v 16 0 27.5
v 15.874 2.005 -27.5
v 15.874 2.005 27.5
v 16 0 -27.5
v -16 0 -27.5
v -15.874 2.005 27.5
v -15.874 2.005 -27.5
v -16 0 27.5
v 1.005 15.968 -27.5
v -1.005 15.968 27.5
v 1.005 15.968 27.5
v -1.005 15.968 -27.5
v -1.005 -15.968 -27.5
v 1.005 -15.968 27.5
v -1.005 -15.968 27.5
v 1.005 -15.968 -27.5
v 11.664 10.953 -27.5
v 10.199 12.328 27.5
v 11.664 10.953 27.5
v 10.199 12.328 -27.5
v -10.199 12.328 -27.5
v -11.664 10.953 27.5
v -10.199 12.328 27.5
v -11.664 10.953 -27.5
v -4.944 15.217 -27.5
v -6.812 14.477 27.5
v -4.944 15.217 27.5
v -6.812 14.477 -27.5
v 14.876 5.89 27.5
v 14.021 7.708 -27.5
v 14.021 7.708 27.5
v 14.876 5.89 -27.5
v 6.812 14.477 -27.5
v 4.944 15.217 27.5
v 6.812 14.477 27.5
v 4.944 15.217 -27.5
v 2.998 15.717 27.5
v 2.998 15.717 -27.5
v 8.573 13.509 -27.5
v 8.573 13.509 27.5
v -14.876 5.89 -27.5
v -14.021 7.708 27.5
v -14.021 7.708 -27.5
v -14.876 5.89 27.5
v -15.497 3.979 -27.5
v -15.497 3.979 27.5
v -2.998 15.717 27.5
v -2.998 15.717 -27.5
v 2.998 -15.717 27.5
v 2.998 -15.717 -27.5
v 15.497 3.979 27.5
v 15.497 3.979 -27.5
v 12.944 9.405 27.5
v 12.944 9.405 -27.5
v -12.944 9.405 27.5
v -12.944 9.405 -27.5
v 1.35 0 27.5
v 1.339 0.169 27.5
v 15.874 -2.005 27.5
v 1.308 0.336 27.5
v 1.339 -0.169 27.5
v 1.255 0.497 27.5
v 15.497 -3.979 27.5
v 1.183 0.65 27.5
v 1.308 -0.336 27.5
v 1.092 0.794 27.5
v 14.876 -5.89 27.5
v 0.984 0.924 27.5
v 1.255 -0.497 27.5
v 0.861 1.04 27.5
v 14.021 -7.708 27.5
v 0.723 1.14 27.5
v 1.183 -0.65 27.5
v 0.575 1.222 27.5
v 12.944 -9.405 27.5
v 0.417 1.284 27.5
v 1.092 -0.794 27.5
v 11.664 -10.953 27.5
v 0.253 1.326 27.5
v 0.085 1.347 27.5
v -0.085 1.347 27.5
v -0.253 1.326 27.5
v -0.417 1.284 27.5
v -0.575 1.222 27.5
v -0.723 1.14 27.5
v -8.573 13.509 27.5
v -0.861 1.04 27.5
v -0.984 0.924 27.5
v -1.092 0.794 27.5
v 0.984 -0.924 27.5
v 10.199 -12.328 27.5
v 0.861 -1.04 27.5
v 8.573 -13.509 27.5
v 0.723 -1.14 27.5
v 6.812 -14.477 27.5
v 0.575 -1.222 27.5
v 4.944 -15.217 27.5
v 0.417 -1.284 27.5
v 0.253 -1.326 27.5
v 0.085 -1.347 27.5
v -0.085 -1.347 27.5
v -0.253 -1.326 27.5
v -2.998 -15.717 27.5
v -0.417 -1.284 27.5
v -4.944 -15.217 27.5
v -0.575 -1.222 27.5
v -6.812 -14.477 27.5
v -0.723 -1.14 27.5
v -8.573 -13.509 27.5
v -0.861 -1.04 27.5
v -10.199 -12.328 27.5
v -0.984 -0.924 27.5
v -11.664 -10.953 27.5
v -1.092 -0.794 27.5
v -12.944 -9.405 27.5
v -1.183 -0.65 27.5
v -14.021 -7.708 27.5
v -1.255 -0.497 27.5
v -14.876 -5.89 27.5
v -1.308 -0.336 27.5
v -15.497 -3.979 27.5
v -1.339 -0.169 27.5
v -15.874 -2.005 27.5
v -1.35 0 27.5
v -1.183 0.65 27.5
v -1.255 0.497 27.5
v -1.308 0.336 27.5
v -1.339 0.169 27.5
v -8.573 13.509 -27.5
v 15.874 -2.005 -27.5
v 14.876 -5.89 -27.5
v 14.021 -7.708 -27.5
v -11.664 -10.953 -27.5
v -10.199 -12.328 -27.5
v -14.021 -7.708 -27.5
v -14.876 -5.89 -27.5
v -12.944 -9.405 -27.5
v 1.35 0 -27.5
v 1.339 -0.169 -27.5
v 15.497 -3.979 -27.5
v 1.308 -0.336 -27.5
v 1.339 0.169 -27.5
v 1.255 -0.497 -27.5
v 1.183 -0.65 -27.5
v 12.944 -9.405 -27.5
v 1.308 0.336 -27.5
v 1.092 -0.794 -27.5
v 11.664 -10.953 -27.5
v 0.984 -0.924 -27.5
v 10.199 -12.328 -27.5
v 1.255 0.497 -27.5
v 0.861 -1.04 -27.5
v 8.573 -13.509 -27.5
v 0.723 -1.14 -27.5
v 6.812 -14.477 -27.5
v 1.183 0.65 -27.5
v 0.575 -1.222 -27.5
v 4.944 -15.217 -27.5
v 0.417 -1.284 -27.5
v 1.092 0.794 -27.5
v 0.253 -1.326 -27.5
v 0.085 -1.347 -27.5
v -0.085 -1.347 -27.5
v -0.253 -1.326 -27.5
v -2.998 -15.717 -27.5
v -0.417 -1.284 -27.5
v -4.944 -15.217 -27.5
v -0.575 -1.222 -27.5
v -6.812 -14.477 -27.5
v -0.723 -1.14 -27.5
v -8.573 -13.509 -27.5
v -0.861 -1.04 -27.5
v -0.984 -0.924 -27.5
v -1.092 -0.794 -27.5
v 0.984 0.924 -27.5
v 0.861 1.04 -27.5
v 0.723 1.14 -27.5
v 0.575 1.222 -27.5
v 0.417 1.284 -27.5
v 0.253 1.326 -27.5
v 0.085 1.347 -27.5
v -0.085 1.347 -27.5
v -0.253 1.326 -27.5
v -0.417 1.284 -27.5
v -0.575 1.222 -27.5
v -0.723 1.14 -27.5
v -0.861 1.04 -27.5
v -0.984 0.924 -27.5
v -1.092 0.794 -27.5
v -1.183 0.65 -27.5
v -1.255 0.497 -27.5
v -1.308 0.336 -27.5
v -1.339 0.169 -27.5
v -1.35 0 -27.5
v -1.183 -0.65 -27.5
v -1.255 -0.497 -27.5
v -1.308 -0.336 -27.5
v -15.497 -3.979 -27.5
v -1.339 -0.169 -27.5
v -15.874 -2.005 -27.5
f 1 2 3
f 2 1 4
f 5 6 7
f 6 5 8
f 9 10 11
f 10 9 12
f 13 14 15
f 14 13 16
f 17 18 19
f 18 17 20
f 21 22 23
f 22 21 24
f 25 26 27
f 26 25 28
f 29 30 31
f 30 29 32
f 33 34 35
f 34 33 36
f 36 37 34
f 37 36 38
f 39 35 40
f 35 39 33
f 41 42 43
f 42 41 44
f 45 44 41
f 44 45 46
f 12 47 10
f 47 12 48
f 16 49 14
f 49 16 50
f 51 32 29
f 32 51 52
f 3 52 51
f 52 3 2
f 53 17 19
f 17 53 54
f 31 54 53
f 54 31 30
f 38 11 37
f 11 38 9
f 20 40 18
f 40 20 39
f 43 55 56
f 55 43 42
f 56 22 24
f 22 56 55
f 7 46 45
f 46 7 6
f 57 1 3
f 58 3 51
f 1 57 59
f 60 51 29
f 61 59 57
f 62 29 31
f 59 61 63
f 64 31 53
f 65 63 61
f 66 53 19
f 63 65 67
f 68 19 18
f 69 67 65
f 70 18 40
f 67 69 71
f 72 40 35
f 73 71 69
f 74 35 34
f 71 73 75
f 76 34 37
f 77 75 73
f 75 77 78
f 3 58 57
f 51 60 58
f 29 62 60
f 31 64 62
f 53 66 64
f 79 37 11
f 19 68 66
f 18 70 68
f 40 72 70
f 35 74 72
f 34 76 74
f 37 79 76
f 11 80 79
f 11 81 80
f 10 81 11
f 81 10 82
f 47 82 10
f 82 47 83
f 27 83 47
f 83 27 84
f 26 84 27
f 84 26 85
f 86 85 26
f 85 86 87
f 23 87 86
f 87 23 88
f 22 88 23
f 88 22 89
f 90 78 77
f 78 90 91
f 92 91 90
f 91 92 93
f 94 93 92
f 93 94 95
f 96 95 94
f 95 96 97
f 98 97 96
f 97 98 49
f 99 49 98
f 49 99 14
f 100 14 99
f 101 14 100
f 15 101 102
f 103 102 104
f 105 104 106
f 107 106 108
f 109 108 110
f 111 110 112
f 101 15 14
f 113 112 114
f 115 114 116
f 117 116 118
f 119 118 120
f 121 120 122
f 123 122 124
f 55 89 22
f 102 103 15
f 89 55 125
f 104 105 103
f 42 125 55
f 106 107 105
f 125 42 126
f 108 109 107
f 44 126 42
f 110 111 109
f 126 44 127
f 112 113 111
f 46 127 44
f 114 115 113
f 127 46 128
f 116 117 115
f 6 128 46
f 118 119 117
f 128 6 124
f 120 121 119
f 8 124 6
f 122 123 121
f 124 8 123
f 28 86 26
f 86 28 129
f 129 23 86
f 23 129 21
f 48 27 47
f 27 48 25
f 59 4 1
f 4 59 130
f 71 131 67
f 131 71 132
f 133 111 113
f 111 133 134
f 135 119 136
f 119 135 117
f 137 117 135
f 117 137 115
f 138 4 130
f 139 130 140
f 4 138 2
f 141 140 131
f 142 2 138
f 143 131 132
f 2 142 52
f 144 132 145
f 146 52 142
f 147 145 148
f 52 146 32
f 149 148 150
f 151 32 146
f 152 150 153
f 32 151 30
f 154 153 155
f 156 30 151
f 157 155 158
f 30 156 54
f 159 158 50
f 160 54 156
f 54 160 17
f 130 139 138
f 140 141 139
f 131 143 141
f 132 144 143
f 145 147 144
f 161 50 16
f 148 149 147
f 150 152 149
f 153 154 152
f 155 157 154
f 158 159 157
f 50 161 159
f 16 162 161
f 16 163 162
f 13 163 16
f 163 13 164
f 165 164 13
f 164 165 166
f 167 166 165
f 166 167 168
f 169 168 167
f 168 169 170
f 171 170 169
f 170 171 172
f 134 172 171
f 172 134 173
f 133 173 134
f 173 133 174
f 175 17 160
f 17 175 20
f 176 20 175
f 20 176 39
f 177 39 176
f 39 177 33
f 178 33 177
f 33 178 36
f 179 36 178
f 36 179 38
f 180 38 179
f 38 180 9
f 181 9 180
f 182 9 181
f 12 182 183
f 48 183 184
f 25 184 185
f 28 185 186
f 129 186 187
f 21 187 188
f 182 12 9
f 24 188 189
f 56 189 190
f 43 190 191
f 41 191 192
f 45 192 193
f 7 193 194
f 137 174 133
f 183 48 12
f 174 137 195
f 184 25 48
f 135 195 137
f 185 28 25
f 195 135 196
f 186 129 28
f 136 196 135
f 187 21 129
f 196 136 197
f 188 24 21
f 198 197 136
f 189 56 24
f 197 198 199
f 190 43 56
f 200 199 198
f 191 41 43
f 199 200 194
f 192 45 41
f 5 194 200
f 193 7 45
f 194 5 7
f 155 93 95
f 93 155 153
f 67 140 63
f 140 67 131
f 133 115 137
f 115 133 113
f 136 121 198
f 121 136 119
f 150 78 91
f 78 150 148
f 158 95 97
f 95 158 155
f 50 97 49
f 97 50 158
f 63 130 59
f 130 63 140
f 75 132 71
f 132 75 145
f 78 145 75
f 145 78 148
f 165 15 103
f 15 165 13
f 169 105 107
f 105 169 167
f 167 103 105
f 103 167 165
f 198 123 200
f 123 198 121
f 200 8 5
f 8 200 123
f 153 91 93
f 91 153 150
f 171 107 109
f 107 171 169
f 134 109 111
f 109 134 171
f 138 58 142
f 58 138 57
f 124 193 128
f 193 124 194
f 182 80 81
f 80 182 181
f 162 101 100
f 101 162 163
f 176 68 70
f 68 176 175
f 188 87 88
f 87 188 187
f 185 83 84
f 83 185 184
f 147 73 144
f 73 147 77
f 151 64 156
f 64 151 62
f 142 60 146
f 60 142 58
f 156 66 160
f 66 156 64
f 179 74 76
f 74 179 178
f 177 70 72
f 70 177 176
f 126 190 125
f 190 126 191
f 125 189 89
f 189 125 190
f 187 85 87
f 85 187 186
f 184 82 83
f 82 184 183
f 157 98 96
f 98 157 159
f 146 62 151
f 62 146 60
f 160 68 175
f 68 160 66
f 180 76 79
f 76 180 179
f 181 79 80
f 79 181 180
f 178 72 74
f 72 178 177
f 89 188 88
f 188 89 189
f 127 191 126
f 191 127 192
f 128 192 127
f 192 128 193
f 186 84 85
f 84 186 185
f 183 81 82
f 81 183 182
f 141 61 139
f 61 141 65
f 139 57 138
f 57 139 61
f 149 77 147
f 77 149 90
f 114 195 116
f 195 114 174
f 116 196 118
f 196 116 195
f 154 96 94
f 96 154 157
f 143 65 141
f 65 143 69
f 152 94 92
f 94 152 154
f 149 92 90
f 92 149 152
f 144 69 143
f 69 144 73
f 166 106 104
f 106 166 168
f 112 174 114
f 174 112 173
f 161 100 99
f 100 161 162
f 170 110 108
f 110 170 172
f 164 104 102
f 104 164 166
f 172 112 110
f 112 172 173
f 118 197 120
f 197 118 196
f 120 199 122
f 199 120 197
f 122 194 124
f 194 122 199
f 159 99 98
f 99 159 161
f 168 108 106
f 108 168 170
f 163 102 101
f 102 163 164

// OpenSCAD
$fn = 50;


difference() {
	union() {
		translate(v = [0, 0, -27.5000000000]) {
			cylinder(h = 55, r = 16.0000000000);
		}
	}
	union() {
		translate(v = [0, 0, -100.0000000000]) {
			cylinder(h = 200, r = 1.3500000000);
		}
	}
}
